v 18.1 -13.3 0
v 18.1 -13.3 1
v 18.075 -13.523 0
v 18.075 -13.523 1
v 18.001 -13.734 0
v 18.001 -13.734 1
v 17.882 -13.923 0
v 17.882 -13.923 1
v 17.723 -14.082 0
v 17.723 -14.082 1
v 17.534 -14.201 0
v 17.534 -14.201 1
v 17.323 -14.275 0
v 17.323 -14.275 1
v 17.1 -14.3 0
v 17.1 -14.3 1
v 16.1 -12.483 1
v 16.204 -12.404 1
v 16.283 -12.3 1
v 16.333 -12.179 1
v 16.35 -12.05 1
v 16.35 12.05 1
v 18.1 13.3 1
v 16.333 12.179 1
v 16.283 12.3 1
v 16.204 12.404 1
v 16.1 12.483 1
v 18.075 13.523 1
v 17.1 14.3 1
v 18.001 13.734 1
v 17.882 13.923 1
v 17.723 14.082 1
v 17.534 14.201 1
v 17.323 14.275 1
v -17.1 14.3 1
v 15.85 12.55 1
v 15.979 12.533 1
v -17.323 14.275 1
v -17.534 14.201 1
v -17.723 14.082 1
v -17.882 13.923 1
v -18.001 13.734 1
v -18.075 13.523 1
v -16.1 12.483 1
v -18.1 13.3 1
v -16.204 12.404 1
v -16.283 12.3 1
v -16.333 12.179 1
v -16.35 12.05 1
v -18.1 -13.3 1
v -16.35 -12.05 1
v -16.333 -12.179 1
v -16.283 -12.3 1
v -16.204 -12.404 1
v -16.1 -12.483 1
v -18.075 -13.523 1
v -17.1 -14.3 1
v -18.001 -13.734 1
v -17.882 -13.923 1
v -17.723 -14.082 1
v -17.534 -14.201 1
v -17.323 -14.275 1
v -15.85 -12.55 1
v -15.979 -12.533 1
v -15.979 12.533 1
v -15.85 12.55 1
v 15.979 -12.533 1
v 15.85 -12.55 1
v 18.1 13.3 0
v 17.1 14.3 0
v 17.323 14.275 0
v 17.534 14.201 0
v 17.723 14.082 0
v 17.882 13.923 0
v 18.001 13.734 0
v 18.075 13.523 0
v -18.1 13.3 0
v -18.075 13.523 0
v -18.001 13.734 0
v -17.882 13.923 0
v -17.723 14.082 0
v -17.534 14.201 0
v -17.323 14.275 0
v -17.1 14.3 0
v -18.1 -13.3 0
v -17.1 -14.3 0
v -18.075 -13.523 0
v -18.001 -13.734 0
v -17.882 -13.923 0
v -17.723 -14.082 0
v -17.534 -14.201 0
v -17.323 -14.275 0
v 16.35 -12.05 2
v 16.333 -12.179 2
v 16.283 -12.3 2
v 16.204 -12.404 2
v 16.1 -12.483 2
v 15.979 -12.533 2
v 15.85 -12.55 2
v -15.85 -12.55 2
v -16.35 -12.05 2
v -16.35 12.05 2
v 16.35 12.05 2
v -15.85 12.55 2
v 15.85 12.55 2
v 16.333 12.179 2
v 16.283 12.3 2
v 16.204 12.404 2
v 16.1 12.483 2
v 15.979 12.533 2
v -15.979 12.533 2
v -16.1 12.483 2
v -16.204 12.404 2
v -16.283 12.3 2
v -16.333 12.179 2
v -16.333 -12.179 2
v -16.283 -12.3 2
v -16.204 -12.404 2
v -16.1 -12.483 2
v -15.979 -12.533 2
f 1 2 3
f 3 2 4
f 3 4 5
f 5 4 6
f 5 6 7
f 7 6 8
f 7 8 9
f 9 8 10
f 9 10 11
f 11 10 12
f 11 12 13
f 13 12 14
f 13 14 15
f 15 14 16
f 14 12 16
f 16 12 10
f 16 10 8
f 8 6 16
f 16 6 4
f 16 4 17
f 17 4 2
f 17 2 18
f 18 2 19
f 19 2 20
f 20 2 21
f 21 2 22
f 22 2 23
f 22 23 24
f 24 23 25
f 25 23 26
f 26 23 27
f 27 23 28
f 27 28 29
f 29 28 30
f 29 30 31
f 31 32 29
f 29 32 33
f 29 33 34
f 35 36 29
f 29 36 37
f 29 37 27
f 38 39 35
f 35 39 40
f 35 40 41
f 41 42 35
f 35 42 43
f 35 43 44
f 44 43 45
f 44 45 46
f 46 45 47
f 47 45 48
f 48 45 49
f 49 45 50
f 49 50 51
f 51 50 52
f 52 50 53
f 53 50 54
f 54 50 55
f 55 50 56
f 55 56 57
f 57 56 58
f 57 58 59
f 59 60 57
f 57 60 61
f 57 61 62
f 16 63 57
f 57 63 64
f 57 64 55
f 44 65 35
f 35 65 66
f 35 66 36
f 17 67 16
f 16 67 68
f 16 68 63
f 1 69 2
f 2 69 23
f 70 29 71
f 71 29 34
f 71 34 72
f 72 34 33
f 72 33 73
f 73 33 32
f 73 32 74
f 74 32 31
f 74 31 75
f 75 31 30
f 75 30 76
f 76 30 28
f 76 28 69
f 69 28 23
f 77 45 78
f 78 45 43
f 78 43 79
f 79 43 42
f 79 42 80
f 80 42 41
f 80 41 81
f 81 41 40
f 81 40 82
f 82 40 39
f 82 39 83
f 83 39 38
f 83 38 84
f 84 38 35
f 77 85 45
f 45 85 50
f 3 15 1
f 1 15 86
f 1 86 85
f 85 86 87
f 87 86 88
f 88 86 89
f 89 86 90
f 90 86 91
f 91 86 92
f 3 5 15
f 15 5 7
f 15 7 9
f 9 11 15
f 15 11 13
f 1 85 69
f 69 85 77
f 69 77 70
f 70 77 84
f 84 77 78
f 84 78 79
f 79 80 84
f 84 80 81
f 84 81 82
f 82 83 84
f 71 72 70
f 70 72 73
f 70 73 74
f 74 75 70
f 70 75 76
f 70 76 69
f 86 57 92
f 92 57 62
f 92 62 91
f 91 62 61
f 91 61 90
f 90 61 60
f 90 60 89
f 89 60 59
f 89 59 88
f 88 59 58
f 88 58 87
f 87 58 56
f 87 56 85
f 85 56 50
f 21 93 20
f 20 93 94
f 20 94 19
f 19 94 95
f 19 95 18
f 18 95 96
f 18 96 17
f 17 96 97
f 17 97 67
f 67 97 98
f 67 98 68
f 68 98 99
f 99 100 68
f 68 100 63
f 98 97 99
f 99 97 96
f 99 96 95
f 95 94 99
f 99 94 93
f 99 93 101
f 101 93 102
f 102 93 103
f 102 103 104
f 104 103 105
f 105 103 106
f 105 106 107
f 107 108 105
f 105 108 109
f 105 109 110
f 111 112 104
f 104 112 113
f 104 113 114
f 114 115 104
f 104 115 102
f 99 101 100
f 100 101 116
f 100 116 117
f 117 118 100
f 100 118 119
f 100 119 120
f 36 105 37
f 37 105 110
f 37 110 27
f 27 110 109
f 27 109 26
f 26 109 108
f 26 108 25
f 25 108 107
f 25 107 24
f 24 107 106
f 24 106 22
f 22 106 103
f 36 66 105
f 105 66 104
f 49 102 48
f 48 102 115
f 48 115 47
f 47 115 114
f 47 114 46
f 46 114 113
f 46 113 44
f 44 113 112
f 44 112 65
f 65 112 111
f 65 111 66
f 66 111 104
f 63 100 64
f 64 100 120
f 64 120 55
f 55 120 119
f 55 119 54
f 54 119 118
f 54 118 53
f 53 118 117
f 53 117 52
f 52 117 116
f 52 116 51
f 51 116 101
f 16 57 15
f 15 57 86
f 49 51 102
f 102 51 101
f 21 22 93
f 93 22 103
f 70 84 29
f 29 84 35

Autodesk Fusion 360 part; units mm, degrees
sketch "Skizze1" plane through (0, 0, 0) normal (0, 0, 1) x (1, 0, 0)
  line L0 (0, 0) -> (18.1, 0)
  line L1 (18.1, 0) -> (18.1, 14.3)
  line L2 (18.1, 14.3) -> (0, 14.3)
  line L3 (0, 14.3) -> (0, 0)
  dimension "d1" = 18.1
  dimension "d2" = 14.3
extrude "Extrusion1" add sketch "Skizze1" along normal blind 2
sketch "Skizze2" plane through (0, 0, 2) normal (0, 0, 1) x (-1, 0, 0)
  line L0 (0, 0) -> (-16.35, 0)
  line L1 (-16.35, 0) -> (-16.35, -12.55)
  line L2 (-16.35, -12.55) -> (0, -12.55)
  line L3 (0, -12.55) -> (0, 0)
  line L4 (0, -14.3) -> (0, 0)
  line L5 (0, 0) -> (-18.1, 0)
  line L6 (-18.1, 0) -> (-18.1, -14.3)
  line L7 (-18.1, -14.3) -> (0, -14.3)
  point P0 (-18.1, 0)
  point P1 (0, -14.3)
  dimension "d19" = 16.35
  dimension "d20" = 12.55
extrude "Extrusion2" cut sketch "Skizze2" against normal blind 1 contours L1 L2 L4 L5 L6 L7
mirror "Spiegeln1" about plane through (0, 14.3, 0) normal (-1, 0, 0) of bodies 1 merged
mirror "Spiegeln2" about plane through (0, 0, 0) normal (0, 1, 0) of bodies 1 merged
fillet "Abrundung1" radius 0.5 4 edges at (-16.35, -12.55, 1.5) (-16.35, 12.55, 1.5) (16.35, 12.55, 1.5) (16.35, -12.55, 1.5)
fillet "Abrundung1" radius 1 4 edges at (-18.1, -14.3, 0.5) (-18.1, 14.3, 0.5) (18.1, 14.3, 0.5) (18.1, -14.3, 0.5)
equation "d1 = ( ( 37.6 - 0.5 ) / 2 ) * 1 mm - 0.45 mm"
equation "d2 = ( ( 30 - 0.5 ) / 2 ) * 1 mm - 0.45 mm"
equation "d19 = ( ( 33.6 - 0.5 ) / 2 ) * 1 mm - 0.2 mm"
equation "d20 = ( ( 26 - 0.5 ) / 2 ) * 1 mm - 0.2 mm"
